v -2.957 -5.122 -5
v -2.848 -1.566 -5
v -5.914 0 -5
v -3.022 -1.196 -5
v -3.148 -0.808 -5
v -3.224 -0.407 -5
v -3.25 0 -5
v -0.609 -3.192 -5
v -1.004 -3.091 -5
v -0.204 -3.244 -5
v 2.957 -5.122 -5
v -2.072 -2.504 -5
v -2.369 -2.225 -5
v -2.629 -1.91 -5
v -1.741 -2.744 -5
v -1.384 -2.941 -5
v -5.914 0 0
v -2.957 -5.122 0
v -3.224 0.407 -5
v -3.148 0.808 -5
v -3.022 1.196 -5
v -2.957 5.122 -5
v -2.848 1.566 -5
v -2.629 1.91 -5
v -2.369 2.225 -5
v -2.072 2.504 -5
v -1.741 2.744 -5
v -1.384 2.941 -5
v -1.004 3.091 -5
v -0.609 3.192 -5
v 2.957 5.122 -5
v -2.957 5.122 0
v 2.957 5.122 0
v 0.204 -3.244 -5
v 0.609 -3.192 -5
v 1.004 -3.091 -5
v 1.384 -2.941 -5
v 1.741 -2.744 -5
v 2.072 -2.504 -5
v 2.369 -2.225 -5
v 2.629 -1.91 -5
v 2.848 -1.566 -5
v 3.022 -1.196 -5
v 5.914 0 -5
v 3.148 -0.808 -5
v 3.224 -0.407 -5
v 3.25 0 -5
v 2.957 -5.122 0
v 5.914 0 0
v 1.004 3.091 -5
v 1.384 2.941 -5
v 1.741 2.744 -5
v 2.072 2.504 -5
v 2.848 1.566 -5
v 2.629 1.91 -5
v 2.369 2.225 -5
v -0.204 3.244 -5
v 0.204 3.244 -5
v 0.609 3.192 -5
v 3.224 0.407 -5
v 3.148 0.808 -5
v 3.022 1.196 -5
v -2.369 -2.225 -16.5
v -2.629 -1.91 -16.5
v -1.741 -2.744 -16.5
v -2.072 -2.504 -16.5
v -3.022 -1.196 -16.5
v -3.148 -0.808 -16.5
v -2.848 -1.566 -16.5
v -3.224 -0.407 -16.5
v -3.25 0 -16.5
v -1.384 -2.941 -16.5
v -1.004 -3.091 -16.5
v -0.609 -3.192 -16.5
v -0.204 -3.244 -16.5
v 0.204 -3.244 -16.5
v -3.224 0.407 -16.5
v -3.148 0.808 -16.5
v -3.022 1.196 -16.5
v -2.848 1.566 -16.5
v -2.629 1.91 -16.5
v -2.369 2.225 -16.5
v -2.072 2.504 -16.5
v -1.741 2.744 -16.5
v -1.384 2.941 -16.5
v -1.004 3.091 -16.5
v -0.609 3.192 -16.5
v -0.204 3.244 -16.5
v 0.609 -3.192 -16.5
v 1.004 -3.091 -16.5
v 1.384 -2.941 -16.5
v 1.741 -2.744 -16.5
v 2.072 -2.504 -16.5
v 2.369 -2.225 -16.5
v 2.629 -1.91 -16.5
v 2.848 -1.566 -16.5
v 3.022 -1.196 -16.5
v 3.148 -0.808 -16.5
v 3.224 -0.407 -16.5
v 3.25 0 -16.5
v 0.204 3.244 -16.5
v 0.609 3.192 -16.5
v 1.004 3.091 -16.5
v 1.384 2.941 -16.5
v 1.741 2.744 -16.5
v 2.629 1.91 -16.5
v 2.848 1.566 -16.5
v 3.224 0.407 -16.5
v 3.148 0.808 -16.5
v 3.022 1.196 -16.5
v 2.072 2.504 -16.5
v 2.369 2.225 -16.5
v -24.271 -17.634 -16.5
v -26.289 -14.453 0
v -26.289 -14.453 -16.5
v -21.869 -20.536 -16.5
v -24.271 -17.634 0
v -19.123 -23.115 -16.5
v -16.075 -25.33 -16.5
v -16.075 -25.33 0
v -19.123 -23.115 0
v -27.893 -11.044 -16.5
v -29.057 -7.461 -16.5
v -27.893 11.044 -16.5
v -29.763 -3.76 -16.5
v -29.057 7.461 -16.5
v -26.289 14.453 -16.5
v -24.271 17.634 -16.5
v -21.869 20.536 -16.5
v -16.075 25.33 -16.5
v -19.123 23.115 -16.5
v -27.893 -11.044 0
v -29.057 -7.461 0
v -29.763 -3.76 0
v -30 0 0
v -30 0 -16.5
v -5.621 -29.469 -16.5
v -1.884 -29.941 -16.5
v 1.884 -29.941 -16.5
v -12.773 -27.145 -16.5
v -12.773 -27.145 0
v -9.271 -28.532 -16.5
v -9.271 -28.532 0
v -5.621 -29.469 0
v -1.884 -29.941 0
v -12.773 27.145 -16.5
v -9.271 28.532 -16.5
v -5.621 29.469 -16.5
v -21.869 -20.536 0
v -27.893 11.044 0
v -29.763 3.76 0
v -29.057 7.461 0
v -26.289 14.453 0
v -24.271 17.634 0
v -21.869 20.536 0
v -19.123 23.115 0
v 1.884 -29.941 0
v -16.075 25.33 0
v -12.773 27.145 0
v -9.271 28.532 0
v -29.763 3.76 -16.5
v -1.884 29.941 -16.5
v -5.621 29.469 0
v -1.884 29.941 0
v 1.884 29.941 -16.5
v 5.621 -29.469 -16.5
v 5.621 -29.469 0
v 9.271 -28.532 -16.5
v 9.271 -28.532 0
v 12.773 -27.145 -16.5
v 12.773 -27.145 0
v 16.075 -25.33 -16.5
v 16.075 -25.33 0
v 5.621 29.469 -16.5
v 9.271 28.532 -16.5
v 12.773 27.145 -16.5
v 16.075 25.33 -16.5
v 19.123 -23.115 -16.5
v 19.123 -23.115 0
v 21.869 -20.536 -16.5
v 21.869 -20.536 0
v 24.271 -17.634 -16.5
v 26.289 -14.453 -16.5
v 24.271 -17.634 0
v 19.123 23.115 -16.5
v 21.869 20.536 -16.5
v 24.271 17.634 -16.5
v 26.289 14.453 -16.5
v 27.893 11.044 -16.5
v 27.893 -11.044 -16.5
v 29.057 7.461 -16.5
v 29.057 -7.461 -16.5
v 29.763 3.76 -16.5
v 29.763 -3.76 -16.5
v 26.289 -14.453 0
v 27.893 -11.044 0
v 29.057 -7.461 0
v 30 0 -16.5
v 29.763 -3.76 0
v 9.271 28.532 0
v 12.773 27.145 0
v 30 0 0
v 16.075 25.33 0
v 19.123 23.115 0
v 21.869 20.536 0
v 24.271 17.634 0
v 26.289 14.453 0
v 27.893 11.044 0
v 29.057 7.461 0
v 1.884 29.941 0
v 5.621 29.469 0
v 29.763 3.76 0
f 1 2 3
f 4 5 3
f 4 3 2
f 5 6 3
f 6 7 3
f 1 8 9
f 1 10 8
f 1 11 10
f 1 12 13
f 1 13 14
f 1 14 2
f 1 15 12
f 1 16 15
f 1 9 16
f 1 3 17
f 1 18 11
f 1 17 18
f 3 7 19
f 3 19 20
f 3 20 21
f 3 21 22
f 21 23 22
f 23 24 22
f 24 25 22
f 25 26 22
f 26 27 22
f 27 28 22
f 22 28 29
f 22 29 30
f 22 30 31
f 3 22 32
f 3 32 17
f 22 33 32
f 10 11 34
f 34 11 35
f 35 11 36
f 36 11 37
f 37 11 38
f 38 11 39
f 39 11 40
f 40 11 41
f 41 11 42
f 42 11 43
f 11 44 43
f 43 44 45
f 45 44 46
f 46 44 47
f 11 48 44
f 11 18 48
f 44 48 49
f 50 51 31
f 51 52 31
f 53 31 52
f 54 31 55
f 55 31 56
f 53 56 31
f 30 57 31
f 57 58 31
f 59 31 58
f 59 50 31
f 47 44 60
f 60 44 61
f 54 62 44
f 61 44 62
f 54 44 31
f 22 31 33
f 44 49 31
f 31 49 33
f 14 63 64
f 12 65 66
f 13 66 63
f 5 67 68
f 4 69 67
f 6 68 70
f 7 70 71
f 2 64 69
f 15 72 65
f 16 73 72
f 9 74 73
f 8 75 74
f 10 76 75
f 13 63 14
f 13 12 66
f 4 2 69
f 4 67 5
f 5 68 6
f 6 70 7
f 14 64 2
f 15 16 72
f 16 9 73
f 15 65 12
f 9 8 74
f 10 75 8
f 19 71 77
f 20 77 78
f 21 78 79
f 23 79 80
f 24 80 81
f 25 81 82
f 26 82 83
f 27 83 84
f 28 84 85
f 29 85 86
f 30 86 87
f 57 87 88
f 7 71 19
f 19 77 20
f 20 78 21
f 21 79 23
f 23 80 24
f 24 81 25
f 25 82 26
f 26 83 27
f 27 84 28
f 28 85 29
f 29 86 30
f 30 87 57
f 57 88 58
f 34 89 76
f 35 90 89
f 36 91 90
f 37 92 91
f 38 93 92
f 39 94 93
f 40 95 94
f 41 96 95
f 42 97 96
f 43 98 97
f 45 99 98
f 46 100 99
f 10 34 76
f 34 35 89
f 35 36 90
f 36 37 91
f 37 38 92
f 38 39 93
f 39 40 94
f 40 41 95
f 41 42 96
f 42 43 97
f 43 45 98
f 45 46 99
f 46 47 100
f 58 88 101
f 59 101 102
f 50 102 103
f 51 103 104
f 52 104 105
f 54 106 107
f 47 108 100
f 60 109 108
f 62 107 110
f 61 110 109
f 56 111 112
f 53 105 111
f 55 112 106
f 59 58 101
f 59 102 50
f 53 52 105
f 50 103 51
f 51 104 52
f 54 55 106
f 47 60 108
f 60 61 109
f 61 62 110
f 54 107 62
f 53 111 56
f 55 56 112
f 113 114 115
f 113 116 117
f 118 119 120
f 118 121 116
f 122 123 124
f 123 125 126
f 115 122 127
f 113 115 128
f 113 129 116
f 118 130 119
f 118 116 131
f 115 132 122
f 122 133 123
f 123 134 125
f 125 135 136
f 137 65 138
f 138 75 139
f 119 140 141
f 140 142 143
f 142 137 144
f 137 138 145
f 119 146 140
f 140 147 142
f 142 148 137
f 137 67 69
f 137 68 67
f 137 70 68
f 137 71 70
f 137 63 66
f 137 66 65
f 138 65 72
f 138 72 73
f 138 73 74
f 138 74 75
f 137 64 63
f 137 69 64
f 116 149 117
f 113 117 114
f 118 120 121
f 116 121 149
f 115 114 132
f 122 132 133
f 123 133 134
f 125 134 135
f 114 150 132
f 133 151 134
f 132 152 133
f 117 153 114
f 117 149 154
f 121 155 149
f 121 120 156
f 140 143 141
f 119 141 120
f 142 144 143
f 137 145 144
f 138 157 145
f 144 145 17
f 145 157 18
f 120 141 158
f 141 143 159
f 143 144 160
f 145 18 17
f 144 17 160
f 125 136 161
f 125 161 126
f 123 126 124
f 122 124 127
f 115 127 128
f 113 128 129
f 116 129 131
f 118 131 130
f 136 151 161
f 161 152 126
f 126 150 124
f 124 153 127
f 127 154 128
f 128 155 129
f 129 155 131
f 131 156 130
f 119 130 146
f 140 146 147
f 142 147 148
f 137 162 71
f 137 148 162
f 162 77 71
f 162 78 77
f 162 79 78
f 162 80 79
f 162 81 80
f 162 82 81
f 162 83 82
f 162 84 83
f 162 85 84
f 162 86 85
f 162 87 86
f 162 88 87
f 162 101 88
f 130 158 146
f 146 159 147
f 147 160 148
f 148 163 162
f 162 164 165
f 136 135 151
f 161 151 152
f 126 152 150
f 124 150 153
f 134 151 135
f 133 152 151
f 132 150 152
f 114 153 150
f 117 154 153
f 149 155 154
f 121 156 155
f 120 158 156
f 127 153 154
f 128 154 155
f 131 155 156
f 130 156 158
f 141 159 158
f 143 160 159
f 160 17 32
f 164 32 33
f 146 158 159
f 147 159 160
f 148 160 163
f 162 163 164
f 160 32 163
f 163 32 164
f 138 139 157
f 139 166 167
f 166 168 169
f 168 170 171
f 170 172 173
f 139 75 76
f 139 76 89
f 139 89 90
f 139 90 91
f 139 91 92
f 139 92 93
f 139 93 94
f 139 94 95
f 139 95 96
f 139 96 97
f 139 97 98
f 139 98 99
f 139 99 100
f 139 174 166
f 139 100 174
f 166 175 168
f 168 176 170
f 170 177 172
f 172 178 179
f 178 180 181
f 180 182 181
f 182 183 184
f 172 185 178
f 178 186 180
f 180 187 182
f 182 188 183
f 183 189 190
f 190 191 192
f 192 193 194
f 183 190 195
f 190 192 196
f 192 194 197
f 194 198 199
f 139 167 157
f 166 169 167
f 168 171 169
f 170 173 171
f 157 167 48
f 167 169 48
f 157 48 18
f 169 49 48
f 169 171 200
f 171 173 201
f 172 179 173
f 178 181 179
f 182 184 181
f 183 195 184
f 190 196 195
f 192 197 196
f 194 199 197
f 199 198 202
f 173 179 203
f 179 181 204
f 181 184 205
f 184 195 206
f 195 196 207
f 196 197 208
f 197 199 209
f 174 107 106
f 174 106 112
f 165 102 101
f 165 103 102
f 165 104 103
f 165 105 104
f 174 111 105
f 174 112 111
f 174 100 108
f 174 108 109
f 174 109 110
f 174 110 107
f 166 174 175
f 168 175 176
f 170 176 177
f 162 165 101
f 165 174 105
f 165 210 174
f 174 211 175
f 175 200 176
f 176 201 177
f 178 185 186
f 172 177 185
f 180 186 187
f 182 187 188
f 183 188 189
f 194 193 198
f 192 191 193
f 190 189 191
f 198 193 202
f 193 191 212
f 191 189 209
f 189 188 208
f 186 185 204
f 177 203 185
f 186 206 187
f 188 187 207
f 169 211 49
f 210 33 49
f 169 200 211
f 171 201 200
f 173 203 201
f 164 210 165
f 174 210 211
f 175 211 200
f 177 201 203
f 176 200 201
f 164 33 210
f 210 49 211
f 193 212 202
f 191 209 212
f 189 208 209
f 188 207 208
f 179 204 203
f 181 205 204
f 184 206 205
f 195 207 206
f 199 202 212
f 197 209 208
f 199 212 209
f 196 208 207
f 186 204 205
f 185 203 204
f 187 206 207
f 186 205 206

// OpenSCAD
$fn = 50;

difference() {
	union() {
		translate(v = [0, 0, -16.5]) {
			cylinder(h = 16.5, r = 30.0);
		}
	}
	union() {
		translate(v = [0, 0, 0]) {
			rotate(a = [0, 0, 0]) {
				difference() {
					union() {
						translate(v = [0, 0, -5]) {
							linear_extrude(height = 5) {
								polygon(points = [[5.914249999999999, 0.0], [2.957125, 5.1218907443321156], [-2.9571249999999982, 5.1218907443321156], [-5.914249999999999, 7.242867331857232e-16], [-2.9571250000000022, -5.121890744332115], [2.9571249999999956, -5.121890744332118]]);
							}
						}
					}
					union();
				}
			}
		}
		#translate(v = [0, 0, -100.0]) {
			cylinder(h = 200, r = 3.25);
		}
	}
}
